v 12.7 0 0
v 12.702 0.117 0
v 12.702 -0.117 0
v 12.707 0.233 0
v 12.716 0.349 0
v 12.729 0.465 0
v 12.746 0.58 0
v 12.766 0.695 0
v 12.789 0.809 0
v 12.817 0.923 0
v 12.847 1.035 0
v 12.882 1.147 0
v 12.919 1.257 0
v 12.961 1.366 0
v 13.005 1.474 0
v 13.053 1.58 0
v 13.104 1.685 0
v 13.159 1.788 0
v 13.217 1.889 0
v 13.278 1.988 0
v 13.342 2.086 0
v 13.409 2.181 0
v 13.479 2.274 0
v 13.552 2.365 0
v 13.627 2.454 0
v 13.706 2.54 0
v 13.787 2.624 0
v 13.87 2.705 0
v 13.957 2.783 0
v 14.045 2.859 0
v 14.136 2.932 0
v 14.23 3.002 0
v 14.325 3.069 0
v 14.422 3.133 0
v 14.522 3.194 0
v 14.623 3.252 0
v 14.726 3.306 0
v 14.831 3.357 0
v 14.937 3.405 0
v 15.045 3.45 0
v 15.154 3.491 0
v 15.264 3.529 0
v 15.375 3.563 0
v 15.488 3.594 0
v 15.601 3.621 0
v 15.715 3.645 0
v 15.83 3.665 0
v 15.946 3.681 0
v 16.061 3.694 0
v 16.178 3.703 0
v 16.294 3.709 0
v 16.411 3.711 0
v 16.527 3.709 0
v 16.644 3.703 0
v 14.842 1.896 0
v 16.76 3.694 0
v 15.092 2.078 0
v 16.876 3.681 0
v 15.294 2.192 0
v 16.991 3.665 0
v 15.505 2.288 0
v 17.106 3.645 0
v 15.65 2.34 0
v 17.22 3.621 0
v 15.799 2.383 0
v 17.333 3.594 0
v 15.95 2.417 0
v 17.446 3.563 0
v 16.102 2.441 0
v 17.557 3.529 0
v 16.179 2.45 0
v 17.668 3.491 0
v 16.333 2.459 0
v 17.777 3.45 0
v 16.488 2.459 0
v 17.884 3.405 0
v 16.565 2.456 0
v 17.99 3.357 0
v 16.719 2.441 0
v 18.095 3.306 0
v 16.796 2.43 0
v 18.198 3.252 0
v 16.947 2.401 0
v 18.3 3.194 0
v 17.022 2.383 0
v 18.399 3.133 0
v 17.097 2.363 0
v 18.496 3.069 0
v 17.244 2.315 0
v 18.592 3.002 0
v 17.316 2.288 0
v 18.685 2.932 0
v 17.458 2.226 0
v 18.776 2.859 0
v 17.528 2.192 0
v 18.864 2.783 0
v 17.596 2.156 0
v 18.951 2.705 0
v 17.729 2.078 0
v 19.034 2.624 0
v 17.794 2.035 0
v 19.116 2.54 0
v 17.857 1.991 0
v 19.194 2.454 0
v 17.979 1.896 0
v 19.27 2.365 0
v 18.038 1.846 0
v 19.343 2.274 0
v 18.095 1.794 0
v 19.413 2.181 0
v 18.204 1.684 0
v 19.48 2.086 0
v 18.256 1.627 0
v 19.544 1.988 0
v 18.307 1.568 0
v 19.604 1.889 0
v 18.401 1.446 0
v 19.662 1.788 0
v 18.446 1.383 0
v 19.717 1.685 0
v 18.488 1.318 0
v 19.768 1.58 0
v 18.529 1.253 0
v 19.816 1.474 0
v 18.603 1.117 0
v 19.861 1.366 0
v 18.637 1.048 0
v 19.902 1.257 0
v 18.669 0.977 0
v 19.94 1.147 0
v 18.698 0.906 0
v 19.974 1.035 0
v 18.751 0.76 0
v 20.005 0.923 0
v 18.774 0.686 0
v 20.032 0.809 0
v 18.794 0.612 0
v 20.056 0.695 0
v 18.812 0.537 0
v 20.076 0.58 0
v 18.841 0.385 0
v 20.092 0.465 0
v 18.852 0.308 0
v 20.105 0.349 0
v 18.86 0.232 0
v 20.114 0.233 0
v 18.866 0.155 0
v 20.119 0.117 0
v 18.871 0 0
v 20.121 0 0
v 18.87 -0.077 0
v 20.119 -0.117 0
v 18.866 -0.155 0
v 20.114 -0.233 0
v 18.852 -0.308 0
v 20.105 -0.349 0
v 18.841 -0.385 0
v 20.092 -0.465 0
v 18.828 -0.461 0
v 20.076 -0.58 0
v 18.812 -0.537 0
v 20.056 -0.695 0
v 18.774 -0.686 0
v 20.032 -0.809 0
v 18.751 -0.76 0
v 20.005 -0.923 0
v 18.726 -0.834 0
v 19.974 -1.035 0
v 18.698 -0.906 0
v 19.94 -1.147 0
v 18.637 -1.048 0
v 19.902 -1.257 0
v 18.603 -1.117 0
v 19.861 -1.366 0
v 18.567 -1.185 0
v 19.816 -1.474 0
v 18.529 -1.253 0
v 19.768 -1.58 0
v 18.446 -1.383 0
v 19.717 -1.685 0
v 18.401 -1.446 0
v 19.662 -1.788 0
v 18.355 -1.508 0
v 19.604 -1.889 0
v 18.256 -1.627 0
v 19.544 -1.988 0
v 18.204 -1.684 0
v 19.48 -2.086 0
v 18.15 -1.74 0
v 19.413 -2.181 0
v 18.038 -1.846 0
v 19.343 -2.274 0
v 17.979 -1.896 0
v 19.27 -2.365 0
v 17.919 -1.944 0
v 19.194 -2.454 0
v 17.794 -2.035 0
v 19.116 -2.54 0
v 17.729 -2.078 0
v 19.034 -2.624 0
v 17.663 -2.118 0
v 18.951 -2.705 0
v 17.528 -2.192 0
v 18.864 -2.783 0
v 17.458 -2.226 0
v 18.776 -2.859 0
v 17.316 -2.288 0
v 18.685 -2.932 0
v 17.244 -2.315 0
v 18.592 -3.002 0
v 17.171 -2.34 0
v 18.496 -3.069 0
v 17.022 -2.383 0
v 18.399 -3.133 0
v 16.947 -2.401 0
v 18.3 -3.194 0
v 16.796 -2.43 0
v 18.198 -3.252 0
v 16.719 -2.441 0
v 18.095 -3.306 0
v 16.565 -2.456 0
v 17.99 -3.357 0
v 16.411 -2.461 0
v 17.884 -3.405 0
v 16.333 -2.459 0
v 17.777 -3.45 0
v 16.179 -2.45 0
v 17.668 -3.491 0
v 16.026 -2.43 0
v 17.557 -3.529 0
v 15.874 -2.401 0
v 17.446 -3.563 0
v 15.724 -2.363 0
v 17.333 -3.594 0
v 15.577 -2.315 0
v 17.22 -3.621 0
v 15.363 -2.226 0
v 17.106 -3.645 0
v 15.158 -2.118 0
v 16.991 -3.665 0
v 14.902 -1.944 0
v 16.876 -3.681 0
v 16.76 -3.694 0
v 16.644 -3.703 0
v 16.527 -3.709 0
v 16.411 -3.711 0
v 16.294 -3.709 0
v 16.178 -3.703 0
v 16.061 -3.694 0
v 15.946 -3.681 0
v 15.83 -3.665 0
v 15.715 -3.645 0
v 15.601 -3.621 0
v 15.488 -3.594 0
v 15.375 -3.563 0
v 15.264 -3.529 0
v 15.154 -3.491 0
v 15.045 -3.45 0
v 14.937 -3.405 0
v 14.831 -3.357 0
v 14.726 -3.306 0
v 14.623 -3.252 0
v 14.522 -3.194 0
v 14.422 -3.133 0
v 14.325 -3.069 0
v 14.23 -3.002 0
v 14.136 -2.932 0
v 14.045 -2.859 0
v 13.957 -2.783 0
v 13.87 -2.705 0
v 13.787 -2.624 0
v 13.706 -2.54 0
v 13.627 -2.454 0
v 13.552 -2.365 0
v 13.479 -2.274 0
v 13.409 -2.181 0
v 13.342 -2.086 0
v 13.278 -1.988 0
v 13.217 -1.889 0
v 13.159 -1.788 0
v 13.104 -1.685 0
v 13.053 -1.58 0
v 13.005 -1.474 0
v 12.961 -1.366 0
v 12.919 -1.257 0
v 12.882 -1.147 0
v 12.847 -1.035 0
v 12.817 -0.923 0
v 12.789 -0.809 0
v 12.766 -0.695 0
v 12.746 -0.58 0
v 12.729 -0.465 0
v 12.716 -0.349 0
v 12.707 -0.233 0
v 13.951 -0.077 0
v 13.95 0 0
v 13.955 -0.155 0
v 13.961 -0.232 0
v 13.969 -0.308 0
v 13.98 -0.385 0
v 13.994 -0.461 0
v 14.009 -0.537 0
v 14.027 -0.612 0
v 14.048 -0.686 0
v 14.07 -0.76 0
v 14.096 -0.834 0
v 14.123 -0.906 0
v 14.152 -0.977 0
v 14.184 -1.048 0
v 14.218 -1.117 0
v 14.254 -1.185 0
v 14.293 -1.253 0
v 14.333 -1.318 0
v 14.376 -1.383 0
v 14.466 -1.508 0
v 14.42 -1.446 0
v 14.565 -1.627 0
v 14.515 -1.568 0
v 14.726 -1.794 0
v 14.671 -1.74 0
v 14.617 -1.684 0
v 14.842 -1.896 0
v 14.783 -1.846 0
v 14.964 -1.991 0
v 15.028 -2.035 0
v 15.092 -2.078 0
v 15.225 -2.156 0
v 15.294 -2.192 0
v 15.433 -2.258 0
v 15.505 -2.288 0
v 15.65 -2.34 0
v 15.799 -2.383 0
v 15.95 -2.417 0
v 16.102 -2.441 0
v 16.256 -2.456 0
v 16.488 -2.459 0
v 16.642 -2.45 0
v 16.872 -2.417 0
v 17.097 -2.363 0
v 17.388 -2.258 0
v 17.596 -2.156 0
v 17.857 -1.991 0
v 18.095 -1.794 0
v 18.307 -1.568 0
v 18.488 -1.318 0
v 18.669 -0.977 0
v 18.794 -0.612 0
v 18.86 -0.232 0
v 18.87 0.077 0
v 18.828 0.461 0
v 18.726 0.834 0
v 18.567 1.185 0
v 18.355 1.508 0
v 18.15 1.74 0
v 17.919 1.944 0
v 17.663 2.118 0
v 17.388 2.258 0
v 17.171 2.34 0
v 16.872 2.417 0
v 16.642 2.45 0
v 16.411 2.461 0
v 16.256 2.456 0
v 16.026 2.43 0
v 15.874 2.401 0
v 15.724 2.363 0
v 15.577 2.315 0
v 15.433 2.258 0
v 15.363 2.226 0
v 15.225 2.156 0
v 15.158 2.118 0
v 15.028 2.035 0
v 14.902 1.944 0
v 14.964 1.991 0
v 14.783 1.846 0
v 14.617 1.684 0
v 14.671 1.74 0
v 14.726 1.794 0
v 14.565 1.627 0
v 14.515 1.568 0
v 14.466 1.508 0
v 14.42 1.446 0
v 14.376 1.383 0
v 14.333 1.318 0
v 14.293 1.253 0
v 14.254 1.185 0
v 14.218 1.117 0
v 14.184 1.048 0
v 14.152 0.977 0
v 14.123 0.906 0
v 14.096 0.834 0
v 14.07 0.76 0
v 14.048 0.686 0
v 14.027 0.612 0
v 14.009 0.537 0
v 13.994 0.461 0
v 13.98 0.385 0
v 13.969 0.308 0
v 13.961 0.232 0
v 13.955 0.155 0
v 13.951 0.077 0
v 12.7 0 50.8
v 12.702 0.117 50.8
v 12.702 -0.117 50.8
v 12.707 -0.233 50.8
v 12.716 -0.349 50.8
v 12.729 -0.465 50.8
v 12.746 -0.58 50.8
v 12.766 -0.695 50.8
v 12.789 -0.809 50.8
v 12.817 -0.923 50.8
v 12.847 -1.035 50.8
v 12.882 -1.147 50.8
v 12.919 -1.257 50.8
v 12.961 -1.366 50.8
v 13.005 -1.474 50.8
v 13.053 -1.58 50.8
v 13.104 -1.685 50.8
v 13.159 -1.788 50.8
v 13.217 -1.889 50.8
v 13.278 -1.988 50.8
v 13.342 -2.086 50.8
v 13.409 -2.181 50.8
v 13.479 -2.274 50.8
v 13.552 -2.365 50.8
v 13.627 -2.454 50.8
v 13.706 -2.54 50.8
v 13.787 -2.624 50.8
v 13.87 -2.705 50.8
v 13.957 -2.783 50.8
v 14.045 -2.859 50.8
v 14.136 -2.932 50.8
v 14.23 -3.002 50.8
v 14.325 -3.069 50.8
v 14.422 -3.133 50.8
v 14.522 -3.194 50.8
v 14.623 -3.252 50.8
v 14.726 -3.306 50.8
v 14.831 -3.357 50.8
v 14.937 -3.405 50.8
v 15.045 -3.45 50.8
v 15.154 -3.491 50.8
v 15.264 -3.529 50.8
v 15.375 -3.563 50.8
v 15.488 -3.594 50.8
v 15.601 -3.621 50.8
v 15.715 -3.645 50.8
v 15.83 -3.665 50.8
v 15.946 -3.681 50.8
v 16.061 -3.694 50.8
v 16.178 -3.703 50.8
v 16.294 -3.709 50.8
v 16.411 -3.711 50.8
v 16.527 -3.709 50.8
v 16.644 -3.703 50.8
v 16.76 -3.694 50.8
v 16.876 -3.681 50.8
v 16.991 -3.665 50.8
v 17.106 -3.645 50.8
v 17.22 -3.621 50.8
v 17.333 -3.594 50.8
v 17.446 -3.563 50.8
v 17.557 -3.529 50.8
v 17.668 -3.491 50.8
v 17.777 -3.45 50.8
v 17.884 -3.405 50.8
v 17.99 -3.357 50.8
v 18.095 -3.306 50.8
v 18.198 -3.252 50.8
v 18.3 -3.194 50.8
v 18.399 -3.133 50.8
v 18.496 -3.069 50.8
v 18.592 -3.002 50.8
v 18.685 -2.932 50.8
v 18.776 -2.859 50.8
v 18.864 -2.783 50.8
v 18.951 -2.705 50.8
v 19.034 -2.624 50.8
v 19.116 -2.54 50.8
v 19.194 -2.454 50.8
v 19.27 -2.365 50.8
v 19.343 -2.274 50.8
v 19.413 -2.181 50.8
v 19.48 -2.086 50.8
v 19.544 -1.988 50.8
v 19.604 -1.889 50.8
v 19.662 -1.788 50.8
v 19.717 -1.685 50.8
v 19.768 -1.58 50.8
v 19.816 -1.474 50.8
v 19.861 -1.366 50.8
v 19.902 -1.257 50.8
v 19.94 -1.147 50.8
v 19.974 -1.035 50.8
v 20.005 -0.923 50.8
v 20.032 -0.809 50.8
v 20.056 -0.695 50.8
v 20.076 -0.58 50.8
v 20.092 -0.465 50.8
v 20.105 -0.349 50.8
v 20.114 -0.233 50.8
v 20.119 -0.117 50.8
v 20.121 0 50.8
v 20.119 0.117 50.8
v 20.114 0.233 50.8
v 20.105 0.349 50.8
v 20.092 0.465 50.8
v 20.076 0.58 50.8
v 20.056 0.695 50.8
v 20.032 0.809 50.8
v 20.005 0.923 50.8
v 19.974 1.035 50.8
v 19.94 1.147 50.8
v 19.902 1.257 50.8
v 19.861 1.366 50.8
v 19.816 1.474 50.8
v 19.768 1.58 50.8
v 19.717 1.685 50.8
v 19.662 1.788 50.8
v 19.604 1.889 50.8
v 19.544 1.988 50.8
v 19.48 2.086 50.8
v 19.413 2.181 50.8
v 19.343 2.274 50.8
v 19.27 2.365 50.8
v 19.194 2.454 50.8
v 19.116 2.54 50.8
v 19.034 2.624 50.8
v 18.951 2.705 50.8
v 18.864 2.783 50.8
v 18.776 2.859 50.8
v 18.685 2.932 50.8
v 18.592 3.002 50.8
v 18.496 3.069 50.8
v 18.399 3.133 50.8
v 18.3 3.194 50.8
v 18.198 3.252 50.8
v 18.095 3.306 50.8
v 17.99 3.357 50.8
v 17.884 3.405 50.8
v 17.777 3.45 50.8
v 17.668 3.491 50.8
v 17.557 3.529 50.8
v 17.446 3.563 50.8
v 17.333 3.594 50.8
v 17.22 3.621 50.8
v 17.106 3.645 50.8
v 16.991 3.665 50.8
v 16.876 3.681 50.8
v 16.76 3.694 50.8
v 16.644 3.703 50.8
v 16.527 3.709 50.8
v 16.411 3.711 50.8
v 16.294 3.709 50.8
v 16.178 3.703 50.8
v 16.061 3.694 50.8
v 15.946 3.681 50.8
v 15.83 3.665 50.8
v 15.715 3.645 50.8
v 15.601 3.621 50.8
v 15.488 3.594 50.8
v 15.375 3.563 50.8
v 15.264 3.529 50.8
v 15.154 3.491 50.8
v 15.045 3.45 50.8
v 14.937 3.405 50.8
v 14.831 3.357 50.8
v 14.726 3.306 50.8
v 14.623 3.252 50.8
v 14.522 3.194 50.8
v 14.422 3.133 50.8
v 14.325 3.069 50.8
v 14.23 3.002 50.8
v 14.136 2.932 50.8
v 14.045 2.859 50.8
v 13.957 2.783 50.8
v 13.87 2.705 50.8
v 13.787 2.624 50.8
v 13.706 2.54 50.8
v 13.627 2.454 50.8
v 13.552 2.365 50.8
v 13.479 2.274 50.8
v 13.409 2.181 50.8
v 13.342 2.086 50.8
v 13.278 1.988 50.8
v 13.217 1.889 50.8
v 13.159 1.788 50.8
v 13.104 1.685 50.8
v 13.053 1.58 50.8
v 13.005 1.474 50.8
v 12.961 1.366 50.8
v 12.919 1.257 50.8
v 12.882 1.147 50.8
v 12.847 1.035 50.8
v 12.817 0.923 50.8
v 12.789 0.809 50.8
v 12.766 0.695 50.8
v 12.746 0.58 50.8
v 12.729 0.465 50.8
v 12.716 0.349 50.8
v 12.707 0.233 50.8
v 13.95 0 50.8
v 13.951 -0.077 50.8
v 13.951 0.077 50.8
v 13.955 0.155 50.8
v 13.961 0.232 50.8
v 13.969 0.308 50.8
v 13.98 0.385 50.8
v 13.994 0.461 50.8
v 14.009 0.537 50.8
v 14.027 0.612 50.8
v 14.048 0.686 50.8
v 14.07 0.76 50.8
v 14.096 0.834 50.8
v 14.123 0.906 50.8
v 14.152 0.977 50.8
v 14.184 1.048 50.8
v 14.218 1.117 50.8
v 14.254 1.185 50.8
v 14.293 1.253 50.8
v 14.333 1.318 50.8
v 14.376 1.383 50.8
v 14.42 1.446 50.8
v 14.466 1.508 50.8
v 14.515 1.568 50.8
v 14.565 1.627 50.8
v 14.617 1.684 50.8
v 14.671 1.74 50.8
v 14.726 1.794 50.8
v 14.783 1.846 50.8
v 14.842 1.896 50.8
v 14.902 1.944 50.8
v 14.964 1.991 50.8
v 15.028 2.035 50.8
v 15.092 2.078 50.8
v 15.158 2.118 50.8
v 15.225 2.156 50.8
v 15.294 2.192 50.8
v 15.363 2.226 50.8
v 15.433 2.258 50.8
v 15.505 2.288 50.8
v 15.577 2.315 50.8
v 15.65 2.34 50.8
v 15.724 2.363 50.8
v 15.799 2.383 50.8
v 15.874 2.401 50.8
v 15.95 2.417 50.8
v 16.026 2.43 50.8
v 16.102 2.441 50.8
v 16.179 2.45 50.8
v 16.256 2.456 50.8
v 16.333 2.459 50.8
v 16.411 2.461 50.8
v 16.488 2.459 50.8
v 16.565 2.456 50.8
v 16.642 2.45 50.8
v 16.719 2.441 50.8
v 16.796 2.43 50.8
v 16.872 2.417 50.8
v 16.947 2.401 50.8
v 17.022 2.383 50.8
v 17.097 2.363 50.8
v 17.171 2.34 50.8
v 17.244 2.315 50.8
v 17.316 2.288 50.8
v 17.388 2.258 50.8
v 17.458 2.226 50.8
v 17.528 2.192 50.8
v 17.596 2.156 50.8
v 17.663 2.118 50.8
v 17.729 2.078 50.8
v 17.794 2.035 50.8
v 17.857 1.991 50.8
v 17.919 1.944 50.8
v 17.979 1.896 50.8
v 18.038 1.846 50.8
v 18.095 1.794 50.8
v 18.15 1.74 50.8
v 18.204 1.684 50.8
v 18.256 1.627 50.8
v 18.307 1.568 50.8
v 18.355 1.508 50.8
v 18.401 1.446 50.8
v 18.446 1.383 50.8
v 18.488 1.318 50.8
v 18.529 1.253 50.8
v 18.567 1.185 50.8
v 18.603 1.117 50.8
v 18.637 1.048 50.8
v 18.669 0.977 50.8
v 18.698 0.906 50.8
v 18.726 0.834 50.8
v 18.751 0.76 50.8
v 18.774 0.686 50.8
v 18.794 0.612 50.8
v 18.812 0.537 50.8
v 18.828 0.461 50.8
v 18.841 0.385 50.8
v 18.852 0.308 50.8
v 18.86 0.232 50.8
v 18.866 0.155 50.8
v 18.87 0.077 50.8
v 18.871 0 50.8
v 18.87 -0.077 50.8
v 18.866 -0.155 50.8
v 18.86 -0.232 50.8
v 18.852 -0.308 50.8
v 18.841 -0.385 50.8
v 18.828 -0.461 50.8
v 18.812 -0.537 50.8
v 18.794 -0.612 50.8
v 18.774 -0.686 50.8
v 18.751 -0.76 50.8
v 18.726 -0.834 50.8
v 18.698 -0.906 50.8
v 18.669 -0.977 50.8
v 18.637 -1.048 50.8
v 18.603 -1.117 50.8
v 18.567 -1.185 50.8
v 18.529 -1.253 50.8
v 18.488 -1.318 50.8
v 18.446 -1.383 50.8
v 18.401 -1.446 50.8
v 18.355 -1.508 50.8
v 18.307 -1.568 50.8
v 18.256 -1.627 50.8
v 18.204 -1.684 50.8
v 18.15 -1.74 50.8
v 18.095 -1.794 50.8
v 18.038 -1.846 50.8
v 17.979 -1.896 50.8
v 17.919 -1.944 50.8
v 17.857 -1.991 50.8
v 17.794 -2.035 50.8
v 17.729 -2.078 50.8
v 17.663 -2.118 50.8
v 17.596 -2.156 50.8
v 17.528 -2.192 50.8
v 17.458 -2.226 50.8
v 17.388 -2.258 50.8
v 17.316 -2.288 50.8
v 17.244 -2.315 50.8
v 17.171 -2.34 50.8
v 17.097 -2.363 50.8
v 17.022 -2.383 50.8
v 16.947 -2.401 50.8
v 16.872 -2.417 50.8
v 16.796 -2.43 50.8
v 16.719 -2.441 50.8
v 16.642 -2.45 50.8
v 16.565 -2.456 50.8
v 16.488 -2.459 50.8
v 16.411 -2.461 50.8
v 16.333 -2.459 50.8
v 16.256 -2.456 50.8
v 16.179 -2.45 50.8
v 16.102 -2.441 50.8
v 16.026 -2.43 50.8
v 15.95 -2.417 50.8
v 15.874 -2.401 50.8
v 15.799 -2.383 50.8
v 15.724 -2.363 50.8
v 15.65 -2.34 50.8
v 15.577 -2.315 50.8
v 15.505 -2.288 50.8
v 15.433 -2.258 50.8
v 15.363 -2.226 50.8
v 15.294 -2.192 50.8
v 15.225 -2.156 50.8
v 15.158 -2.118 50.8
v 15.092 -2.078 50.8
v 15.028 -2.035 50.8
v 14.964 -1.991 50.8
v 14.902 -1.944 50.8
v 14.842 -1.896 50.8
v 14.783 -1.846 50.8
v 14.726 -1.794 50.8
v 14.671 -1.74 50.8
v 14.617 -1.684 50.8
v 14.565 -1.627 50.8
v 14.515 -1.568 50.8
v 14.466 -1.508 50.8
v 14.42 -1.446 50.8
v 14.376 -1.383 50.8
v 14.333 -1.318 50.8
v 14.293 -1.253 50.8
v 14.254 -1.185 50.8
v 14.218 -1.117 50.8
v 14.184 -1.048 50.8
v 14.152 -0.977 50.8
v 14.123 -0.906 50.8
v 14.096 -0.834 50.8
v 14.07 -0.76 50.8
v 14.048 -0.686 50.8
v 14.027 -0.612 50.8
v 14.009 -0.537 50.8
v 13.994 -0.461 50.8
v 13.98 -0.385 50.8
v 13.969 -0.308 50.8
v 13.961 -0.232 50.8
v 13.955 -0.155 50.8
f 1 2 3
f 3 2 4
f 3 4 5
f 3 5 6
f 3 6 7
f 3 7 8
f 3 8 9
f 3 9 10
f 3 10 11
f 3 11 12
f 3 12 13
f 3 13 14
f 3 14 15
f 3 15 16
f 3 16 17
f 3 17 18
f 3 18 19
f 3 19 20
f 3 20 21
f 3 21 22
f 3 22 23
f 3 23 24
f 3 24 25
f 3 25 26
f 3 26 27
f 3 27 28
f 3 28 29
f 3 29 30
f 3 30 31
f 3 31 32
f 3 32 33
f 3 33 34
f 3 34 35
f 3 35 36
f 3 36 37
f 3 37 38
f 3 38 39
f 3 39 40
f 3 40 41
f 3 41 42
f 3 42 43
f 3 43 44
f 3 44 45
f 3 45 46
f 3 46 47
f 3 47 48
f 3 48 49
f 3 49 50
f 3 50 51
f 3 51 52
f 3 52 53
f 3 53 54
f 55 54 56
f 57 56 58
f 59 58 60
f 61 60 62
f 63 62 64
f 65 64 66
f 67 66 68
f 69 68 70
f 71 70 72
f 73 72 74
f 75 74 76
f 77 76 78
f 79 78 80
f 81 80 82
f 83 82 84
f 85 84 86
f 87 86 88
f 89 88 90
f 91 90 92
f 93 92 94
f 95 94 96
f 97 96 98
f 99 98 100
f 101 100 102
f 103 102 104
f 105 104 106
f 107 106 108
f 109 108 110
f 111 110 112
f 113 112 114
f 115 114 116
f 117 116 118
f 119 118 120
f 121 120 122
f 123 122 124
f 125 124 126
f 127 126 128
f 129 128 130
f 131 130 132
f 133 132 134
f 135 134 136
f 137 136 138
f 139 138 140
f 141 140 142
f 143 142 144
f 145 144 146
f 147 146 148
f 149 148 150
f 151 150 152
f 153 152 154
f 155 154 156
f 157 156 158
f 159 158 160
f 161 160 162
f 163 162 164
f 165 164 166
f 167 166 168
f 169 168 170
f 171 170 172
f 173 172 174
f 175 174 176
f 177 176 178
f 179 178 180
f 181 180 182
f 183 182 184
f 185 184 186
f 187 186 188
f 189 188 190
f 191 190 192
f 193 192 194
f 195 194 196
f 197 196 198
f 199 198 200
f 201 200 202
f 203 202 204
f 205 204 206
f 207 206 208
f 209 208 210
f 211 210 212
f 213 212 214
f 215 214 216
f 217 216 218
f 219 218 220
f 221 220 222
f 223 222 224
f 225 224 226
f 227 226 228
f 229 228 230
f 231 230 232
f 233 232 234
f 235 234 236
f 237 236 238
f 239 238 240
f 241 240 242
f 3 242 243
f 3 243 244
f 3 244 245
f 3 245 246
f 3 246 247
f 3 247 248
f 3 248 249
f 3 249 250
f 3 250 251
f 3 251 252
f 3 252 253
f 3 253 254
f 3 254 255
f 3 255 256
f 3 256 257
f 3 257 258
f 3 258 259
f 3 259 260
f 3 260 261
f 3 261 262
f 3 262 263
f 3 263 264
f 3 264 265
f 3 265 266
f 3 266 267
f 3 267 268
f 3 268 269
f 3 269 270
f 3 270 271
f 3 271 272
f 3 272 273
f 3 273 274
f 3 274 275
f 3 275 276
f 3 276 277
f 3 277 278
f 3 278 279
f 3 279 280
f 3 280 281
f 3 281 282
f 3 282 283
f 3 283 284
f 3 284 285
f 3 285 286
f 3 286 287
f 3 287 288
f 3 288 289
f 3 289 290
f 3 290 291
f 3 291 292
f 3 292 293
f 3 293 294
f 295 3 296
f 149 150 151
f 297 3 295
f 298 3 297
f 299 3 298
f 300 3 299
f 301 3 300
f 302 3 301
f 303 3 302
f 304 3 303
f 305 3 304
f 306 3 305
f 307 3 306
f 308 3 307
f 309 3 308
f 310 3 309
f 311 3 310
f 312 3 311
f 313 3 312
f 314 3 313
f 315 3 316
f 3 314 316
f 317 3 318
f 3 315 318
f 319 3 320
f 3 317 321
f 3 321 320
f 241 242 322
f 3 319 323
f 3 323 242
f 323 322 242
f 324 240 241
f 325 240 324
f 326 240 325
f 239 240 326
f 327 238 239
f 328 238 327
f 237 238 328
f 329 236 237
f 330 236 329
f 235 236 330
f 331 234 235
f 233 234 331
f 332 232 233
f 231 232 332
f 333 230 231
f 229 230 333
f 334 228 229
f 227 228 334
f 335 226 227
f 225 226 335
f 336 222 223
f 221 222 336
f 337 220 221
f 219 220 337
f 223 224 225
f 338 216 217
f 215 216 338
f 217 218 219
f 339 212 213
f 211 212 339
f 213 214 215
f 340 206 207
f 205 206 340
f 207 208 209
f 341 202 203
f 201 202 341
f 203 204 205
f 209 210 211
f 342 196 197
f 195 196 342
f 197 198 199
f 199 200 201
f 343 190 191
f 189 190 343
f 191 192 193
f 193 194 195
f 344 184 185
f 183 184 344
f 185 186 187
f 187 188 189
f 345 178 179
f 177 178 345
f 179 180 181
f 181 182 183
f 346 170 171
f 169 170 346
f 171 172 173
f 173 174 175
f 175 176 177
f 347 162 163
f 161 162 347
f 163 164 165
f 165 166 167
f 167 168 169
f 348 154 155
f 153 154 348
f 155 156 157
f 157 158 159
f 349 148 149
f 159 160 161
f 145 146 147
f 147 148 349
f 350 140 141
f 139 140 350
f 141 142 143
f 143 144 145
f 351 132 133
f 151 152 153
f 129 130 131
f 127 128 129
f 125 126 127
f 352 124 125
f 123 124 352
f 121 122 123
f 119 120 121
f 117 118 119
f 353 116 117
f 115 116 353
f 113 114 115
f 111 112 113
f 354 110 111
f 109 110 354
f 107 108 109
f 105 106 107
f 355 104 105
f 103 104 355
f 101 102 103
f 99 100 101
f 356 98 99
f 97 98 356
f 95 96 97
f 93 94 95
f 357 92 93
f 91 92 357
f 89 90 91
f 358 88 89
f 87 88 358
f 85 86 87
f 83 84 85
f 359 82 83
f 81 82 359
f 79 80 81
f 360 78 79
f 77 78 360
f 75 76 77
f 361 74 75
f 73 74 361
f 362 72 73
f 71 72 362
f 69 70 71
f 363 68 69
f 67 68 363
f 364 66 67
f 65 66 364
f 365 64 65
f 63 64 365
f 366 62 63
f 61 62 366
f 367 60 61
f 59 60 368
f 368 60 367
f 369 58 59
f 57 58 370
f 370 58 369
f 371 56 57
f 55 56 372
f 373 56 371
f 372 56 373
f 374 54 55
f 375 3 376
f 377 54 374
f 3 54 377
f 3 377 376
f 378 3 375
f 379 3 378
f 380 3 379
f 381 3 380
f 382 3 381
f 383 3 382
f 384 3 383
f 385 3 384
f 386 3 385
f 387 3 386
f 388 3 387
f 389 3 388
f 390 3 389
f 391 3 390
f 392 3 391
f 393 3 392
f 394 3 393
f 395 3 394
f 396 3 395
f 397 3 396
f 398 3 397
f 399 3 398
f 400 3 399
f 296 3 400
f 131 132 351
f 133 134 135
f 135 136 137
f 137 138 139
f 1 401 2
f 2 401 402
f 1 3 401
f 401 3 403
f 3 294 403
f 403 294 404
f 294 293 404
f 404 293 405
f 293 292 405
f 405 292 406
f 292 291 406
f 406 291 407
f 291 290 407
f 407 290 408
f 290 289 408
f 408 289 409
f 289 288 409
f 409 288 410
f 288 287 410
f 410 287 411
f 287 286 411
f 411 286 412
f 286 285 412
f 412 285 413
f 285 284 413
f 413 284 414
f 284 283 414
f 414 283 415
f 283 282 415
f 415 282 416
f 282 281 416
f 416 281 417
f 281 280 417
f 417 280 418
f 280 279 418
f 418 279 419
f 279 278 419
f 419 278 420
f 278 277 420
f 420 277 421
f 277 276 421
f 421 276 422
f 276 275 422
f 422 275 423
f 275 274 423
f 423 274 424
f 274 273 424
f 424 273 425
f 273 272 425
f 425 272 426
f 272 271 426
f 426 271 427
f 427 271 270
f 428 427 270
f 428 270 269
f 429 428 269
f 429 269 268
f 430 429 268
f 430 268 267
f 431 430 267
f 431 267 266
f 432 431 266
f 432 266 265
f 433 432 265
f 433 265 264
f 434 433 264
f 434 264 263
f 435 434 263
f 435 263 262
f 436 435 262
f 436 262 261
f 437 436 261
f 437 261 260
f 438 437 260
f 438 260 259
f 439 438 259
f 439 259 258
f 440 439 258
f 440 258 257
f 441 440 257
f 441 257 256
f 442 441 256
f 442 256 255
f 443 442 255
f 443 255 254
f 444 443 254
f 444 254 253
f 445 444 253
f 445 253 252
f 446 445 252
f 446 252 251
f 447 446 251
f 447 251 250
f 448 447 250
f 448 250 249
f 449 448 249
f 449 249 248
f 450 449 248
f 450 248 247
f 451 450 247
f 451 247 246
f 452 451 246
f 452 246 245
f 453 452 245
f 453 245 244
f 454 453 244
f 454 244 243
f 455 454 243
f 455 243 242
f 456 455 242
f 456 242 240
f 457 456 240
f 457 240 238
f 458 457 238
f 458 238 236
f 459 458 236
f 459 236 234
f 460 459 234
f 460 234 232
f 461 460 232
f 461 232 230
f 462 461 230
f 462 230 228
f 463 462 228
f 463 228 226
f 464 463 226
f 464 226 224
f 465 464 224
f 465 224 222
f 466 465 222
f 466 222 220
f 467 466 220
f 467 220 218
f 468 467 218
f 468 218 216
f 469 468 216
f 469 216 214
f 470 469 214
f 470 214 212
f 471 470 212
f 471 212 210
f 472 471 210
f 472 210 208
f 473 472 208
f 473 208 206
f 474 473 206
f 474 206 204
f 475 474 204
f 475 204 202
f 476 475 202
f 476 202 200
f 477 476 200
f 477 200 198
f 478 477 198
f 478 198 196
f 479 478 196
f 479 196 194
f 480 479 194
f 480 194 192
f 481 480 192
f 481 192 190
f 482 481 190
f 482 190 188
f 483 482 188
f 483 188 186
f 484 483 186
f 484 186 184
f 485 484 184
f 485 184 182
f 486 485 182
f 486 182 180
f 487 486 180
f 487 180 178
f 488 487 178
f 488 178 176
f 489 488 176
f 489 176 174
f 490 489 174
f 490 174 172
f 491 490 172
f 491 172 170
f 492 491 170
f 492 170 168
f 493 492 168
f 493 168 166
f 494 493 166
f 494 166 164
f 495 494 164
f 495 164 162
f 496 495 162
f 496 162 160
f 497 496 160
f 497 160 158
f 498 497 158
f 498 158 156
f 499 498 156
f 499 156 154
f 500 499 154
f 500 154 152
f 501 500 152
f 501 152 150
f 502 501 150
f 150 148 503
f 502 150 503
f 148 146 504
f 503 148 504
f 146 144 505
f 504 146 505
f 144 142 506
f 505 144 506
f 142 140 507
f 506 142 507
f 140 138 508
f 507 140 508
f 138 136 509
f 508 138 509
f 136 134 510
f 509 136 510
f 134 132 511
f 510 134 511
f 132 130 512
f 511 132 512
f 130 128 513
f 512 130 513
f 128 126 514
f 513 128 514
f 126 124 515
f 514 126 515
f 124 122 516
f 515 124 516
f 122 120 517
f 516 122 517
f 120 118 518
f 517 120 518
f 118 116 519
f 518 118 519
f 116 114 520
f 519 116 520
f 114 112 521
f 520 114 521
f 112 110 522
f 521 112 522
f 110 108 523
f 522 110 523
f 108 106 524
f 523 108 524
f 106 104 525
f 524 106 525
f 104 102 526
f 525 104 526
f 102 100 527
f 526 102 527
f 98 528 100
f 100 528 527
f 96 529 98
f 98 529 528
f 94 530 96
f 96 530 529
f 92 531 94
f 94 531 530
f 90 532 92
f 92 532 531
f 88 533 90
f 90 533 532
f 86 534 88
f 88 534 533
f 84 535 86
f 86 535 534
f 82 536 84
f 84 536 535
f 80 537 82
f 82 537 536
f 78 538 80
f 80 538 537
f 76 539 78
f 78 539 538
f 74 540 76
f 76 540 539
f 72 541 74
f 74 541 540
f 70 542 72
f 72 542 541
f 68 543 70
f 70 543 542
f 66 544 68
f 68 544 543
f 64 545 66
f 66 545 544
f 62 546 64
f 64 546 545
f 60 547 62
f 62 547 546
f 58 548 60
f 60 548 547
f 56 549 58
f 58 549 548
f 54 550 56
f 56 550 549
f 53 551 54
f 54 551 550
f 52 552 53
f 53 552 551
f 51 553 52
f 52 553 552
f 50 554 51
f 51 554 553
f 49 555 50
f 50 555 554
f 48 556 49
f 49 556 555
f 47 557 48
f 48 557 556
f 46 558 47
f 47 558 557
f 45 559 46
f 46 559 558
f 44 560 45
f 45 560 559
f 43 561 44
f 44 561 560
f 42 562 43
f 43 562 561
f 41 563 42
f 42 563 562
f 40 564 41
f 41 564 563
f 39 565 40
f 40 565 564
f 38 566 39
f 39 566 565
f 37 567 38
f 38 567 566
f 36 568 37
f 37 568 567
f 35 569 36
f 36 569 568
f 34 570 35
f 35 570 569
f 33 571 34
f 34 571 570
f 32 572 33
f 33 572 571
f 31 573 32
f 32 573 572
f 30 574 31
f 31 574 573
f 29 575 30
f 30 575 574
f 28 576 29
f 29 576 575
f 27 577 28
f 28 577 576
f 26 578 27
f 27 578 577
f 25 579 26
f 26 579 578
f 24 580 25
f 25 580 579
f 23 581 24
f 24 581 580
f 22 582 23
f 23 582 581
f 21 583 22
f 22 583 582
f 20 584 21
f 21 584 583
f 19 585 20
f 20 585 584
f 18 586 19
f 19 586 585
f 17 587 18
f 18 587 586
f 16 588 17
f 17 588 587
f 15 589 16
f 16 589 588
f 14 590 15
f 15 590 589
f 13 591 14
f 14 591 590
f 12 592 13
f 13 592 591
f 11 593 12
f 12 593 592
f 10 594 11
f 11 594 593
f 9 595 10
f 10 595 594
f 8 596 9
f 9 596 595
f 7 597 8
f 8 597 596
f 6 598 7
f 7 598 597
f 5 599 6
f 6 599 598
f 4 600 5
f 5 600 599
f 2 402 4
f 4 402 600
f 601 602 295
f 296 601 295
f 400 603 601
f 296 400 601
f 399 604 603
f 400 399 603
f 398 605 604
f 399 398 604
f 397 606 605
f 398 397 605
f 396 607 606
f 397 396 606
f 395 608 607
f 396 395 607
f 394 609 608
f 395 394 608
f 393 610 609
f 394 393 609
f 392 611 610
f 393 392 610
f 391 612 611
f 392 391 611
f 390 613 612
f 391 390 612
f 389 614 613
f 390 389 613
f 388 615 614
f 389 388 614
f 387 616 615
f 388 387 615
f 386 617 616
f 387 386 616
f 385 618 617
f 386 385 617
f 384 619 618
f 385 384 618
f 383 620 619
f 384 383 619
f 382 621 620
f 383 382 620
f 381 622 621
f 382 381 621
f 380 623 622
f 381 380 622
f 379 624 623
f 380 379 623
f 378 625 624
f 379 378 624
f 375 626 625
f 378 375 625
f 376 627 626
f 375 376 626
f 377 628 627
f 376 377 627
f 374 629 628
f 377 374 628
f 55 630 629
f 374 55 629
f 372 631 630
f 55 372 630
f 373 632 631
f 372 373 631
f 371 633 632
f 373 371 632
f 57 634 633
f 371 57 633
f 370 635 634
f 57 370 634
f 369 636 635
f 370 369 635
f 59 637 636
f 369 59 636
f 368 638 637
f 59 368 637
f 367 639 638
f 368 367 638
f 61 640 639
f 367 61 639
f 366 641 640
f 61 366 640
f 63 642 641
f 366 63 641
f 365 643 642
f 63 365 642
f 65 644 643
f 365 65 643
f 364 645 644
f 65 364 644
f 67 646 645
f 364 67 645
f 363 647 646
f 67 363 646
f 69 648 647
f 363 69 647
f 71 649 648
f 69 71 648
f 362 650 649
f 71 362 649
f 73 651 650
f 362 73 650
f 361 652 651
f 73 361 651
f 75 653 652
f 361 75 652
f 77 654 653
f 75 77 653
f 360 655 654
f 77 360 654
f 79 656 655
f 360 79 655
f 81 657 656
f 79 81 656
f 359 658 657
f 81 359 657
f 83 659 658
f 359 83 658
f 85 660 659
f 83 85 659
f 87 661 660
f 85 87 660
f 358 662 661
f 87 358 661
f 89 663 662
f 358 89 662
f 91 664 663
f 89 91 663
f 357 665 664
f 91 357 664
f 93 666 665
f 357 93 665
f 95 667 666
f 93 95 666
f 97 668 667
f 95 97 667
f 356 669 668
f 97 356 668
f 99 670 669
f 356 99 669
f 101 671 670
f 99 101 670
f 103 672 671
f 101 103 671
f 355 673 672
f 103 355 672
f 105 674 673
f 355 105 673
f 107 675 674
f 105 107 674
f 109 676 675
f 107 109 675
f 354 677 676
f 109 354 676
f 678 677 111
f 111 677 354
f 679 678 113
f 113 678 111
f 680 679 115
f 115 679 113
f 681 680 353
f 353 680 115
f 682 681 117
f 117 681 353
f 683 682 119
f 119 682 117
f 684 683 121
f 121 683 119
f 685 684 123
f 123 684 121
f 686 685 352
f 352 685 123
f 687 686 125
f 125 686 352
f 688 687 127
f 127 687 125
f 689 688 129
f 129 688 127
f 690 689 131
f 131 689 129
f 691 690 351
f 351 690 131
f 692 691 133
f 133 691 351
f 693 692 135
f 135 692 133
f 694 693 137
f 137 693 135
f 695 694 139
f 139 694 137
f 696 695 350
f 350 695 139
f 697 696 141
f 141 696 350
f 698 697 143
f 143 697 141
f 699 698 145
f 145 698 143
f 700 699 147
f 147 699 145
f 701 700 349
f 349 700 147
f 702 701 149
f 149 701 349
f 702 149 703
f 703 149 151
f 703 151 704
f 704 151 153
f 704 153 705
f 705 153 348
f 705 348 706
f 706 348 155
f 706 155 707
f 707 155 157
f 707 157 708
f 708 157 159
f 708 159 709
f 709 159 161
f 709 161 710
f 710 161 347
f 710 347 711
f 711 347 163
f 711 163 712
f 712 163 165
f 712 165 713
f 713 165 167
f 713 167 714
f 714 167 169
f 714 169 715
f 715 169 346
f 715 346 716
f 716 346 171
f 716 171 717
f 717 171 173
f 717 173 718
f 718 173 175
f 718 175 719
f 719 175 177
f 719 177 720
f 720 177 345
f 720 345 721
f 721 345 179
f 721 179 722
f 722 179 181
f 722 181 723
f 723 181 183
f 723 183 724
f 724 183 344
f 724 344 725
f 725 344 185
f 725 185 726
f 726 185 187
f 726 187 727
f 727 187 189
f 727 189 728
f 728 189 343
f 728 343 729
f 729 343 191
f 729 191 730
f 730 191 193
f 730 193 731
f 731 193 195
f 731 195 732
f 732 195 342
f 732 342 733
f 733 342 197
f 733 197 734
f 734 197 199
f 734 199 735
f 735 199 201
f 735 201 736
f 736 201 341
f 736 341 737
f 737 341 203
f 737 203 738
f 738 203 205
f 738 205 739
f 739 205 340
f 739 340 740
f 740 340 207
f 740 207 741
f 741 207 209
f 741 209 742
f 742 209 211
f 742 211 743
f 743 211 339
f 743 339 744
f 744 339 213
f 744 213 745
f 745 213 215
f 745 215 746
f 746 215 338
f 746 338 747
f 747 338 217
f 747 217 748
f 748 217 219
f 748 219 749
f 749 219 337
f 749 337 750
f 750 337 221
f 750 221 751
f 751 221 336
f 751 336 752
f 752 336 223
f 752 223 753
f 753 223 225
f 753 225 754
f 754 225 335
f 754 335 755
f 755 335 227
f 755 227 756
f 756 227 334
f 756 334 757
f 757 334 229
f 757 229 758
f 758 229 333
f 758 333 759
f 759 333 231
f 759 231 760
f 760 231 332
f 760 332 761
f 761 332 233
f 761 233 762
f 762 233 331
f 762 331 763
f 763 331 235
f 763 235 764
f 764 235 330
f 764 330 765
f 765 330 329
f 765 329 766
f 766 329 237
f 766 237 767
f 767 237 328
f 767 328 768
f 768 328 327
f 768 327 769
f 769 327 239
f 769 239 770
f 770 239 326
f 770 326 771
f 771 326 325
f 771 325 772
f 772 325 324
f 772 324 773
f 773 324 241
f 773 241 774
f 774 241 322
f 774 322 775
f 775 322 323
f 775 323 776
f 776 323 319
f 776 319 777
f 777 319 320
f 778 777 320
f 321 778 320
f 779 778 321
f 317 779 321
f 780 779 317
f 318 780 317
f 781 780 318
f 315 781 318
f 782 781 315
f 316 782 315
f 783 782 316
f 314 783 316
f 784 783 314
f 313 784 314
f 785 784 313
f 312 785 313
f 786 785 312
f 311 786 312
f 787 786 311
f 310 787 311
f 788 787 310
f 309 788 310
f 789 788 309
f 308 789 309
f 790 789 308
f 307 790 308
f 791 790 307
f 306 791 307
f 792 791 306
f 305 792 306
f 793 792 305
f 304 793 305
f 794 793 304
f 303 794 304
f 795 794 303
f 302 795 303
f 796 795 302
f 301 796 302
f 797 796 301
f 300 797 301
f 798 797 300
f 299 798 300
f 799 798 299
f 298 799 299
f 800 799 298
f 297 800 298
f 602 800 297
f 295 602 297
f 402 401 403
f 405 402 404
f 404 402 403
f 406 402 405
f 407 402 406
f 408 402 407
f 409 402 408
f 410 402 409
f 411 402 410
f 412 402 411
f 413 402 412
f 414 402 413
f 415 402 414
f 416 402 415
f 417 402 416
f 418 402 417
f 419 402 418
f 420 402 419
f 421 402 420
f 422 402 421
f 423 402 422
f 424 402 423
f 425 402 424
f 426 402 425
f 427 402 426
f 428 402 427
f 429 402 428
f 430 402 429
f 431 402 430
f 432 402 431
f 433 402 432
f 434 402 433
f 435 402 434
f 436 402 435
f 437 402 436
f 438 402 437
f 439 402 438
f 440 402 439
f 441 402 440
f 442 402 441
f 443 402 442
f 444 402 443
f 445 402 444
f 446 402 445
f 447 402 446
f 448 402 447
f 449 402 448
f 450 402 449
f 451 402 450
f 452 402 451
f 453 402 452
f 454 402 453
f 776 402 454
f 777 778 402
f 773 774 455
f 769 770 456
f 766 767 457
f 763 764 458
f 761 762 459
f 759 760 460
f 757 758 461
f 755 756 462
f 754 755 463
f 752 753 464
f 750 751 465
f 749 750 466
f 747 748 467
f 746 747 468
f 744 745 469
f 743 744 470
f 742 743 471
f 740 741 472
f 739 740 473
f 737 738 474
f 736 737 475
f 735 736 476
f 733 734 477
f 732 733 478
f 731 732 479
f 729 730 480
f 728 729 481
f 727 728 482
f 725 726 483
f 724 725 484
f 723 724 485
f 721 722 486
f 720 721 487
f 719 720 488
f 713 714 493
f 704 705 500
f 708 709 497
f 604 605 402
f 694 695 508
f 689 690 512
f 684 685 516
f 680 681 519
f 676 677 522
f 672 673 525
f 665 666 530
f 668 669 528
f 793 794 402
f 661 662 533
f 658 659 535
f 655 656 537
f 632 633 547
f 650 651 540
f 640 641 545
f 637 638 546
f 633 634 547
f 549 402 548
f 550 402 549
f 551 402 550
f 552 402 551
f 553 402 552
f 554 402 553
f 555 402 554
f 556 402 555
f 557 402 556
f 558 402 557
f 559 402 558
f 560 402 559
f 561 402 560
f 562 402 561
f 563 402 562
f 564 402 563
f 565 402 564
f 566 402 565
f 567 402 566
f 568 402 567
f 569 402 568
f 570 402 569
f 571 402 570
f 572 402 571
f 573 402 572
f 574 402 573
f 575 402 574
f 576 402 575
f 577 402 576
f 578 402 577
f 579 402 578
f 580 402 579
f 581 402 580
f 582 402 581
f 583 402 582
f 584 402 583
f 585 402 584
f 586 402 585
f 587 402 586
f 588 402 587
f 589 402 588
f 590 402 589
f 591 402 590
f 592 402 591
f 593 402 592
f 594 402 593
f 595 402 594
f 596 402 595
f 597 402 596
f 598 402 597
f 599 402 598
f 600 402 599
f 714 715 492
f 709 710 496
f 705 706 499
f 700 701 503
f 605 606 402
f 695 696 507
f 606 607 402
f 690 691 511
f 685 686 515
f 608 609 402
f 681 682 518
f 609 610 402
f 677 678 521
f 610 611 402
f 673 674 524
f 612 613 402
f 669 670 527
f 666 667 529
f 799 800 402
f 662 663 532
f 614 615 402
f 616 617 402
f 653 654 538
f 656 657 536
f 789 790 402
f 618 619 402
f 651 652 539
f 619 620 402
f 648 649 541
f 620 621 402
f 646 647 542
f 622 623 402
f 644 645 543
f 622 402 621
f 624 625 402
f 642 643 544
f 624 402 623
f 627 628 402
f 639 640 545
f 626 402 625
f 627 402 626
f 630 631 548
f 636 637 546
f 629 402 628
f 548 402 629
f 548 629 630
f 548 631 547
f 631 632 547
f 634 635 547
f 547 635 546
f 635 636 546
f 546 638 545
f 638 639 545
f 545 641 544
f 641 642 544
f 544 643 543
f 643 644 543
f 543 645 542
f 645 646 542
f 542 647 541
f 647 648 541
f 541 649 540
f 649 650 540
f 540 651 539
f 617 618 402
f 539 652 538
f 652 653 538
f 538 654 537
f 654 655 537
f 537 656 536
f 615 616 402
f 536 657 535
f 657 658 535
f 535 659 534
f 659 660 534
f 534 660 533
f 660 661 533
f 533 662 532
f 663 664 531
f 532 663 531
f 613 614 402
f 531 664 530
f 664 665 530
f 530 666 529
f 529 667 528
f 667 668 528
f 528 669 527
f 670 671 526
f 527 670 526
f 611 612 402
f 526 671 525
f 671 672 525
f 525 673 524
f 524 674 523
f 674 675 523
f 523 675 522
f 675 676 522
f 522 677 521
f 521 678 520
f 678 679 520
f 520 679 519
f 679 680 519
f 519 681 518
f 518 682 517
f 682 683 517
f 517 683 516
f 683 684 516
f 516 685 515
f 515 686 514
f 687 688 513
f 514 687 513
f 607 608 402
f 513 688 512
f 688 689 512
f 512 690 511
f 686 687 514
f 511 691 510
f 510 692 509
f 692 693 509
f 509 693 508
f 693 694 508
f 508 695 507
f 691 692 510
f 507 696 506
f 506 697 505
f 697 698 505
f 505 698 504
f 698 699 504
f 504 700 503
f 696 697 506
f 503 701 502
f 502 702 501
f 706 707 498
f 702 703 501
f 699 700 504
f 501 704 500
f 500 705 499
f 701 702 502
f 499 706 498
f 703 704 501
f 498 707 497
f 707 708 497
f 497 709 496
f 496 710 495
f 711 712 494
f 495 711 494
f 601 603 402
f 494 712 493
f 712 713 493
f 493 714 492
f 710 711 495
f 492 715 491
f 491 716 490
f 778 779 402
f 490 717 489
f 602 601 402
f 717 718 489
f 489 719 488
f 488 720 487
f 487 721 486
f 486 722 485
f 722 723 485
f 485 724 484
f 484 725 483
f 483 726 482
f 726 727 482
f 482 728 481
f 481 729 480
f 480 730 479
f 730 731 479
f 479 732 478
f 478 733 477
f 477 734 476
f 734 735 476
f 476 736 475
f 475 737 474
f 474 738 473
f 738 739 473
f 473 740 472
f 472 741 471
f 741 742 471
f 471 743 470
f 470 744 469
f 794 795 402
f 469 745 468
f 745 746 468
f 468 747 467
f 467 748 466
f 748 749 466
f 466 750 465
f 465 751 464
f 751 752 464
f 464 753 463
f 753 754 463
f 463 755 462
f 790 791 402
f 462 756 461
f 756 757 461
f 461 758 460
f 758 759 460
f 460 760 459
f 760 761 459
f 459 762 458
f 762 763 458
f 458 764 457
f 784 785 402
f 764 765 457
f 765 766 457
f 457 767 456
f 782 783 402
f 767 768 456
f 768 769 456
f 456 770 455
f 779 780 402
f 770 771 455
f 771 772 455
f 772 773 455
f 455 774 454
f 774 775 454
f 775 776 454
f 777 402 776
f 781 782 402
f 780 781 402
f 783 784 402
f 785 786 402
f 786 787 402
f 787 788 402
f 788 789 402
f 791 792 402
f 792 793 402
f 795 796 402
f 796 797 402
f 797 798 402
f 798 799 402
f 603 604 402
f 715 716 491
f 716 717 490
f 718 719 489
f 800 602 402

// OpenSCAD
translate(v = [16.4106168133, 0, 0]) {
	difference() {
		cylinder($fn = 200, h = 50.7999725680, r = 3.7106236713);
		cylinder($fn = 200, h = 50.7999725680, r = 2.4606236713);
	}
}
